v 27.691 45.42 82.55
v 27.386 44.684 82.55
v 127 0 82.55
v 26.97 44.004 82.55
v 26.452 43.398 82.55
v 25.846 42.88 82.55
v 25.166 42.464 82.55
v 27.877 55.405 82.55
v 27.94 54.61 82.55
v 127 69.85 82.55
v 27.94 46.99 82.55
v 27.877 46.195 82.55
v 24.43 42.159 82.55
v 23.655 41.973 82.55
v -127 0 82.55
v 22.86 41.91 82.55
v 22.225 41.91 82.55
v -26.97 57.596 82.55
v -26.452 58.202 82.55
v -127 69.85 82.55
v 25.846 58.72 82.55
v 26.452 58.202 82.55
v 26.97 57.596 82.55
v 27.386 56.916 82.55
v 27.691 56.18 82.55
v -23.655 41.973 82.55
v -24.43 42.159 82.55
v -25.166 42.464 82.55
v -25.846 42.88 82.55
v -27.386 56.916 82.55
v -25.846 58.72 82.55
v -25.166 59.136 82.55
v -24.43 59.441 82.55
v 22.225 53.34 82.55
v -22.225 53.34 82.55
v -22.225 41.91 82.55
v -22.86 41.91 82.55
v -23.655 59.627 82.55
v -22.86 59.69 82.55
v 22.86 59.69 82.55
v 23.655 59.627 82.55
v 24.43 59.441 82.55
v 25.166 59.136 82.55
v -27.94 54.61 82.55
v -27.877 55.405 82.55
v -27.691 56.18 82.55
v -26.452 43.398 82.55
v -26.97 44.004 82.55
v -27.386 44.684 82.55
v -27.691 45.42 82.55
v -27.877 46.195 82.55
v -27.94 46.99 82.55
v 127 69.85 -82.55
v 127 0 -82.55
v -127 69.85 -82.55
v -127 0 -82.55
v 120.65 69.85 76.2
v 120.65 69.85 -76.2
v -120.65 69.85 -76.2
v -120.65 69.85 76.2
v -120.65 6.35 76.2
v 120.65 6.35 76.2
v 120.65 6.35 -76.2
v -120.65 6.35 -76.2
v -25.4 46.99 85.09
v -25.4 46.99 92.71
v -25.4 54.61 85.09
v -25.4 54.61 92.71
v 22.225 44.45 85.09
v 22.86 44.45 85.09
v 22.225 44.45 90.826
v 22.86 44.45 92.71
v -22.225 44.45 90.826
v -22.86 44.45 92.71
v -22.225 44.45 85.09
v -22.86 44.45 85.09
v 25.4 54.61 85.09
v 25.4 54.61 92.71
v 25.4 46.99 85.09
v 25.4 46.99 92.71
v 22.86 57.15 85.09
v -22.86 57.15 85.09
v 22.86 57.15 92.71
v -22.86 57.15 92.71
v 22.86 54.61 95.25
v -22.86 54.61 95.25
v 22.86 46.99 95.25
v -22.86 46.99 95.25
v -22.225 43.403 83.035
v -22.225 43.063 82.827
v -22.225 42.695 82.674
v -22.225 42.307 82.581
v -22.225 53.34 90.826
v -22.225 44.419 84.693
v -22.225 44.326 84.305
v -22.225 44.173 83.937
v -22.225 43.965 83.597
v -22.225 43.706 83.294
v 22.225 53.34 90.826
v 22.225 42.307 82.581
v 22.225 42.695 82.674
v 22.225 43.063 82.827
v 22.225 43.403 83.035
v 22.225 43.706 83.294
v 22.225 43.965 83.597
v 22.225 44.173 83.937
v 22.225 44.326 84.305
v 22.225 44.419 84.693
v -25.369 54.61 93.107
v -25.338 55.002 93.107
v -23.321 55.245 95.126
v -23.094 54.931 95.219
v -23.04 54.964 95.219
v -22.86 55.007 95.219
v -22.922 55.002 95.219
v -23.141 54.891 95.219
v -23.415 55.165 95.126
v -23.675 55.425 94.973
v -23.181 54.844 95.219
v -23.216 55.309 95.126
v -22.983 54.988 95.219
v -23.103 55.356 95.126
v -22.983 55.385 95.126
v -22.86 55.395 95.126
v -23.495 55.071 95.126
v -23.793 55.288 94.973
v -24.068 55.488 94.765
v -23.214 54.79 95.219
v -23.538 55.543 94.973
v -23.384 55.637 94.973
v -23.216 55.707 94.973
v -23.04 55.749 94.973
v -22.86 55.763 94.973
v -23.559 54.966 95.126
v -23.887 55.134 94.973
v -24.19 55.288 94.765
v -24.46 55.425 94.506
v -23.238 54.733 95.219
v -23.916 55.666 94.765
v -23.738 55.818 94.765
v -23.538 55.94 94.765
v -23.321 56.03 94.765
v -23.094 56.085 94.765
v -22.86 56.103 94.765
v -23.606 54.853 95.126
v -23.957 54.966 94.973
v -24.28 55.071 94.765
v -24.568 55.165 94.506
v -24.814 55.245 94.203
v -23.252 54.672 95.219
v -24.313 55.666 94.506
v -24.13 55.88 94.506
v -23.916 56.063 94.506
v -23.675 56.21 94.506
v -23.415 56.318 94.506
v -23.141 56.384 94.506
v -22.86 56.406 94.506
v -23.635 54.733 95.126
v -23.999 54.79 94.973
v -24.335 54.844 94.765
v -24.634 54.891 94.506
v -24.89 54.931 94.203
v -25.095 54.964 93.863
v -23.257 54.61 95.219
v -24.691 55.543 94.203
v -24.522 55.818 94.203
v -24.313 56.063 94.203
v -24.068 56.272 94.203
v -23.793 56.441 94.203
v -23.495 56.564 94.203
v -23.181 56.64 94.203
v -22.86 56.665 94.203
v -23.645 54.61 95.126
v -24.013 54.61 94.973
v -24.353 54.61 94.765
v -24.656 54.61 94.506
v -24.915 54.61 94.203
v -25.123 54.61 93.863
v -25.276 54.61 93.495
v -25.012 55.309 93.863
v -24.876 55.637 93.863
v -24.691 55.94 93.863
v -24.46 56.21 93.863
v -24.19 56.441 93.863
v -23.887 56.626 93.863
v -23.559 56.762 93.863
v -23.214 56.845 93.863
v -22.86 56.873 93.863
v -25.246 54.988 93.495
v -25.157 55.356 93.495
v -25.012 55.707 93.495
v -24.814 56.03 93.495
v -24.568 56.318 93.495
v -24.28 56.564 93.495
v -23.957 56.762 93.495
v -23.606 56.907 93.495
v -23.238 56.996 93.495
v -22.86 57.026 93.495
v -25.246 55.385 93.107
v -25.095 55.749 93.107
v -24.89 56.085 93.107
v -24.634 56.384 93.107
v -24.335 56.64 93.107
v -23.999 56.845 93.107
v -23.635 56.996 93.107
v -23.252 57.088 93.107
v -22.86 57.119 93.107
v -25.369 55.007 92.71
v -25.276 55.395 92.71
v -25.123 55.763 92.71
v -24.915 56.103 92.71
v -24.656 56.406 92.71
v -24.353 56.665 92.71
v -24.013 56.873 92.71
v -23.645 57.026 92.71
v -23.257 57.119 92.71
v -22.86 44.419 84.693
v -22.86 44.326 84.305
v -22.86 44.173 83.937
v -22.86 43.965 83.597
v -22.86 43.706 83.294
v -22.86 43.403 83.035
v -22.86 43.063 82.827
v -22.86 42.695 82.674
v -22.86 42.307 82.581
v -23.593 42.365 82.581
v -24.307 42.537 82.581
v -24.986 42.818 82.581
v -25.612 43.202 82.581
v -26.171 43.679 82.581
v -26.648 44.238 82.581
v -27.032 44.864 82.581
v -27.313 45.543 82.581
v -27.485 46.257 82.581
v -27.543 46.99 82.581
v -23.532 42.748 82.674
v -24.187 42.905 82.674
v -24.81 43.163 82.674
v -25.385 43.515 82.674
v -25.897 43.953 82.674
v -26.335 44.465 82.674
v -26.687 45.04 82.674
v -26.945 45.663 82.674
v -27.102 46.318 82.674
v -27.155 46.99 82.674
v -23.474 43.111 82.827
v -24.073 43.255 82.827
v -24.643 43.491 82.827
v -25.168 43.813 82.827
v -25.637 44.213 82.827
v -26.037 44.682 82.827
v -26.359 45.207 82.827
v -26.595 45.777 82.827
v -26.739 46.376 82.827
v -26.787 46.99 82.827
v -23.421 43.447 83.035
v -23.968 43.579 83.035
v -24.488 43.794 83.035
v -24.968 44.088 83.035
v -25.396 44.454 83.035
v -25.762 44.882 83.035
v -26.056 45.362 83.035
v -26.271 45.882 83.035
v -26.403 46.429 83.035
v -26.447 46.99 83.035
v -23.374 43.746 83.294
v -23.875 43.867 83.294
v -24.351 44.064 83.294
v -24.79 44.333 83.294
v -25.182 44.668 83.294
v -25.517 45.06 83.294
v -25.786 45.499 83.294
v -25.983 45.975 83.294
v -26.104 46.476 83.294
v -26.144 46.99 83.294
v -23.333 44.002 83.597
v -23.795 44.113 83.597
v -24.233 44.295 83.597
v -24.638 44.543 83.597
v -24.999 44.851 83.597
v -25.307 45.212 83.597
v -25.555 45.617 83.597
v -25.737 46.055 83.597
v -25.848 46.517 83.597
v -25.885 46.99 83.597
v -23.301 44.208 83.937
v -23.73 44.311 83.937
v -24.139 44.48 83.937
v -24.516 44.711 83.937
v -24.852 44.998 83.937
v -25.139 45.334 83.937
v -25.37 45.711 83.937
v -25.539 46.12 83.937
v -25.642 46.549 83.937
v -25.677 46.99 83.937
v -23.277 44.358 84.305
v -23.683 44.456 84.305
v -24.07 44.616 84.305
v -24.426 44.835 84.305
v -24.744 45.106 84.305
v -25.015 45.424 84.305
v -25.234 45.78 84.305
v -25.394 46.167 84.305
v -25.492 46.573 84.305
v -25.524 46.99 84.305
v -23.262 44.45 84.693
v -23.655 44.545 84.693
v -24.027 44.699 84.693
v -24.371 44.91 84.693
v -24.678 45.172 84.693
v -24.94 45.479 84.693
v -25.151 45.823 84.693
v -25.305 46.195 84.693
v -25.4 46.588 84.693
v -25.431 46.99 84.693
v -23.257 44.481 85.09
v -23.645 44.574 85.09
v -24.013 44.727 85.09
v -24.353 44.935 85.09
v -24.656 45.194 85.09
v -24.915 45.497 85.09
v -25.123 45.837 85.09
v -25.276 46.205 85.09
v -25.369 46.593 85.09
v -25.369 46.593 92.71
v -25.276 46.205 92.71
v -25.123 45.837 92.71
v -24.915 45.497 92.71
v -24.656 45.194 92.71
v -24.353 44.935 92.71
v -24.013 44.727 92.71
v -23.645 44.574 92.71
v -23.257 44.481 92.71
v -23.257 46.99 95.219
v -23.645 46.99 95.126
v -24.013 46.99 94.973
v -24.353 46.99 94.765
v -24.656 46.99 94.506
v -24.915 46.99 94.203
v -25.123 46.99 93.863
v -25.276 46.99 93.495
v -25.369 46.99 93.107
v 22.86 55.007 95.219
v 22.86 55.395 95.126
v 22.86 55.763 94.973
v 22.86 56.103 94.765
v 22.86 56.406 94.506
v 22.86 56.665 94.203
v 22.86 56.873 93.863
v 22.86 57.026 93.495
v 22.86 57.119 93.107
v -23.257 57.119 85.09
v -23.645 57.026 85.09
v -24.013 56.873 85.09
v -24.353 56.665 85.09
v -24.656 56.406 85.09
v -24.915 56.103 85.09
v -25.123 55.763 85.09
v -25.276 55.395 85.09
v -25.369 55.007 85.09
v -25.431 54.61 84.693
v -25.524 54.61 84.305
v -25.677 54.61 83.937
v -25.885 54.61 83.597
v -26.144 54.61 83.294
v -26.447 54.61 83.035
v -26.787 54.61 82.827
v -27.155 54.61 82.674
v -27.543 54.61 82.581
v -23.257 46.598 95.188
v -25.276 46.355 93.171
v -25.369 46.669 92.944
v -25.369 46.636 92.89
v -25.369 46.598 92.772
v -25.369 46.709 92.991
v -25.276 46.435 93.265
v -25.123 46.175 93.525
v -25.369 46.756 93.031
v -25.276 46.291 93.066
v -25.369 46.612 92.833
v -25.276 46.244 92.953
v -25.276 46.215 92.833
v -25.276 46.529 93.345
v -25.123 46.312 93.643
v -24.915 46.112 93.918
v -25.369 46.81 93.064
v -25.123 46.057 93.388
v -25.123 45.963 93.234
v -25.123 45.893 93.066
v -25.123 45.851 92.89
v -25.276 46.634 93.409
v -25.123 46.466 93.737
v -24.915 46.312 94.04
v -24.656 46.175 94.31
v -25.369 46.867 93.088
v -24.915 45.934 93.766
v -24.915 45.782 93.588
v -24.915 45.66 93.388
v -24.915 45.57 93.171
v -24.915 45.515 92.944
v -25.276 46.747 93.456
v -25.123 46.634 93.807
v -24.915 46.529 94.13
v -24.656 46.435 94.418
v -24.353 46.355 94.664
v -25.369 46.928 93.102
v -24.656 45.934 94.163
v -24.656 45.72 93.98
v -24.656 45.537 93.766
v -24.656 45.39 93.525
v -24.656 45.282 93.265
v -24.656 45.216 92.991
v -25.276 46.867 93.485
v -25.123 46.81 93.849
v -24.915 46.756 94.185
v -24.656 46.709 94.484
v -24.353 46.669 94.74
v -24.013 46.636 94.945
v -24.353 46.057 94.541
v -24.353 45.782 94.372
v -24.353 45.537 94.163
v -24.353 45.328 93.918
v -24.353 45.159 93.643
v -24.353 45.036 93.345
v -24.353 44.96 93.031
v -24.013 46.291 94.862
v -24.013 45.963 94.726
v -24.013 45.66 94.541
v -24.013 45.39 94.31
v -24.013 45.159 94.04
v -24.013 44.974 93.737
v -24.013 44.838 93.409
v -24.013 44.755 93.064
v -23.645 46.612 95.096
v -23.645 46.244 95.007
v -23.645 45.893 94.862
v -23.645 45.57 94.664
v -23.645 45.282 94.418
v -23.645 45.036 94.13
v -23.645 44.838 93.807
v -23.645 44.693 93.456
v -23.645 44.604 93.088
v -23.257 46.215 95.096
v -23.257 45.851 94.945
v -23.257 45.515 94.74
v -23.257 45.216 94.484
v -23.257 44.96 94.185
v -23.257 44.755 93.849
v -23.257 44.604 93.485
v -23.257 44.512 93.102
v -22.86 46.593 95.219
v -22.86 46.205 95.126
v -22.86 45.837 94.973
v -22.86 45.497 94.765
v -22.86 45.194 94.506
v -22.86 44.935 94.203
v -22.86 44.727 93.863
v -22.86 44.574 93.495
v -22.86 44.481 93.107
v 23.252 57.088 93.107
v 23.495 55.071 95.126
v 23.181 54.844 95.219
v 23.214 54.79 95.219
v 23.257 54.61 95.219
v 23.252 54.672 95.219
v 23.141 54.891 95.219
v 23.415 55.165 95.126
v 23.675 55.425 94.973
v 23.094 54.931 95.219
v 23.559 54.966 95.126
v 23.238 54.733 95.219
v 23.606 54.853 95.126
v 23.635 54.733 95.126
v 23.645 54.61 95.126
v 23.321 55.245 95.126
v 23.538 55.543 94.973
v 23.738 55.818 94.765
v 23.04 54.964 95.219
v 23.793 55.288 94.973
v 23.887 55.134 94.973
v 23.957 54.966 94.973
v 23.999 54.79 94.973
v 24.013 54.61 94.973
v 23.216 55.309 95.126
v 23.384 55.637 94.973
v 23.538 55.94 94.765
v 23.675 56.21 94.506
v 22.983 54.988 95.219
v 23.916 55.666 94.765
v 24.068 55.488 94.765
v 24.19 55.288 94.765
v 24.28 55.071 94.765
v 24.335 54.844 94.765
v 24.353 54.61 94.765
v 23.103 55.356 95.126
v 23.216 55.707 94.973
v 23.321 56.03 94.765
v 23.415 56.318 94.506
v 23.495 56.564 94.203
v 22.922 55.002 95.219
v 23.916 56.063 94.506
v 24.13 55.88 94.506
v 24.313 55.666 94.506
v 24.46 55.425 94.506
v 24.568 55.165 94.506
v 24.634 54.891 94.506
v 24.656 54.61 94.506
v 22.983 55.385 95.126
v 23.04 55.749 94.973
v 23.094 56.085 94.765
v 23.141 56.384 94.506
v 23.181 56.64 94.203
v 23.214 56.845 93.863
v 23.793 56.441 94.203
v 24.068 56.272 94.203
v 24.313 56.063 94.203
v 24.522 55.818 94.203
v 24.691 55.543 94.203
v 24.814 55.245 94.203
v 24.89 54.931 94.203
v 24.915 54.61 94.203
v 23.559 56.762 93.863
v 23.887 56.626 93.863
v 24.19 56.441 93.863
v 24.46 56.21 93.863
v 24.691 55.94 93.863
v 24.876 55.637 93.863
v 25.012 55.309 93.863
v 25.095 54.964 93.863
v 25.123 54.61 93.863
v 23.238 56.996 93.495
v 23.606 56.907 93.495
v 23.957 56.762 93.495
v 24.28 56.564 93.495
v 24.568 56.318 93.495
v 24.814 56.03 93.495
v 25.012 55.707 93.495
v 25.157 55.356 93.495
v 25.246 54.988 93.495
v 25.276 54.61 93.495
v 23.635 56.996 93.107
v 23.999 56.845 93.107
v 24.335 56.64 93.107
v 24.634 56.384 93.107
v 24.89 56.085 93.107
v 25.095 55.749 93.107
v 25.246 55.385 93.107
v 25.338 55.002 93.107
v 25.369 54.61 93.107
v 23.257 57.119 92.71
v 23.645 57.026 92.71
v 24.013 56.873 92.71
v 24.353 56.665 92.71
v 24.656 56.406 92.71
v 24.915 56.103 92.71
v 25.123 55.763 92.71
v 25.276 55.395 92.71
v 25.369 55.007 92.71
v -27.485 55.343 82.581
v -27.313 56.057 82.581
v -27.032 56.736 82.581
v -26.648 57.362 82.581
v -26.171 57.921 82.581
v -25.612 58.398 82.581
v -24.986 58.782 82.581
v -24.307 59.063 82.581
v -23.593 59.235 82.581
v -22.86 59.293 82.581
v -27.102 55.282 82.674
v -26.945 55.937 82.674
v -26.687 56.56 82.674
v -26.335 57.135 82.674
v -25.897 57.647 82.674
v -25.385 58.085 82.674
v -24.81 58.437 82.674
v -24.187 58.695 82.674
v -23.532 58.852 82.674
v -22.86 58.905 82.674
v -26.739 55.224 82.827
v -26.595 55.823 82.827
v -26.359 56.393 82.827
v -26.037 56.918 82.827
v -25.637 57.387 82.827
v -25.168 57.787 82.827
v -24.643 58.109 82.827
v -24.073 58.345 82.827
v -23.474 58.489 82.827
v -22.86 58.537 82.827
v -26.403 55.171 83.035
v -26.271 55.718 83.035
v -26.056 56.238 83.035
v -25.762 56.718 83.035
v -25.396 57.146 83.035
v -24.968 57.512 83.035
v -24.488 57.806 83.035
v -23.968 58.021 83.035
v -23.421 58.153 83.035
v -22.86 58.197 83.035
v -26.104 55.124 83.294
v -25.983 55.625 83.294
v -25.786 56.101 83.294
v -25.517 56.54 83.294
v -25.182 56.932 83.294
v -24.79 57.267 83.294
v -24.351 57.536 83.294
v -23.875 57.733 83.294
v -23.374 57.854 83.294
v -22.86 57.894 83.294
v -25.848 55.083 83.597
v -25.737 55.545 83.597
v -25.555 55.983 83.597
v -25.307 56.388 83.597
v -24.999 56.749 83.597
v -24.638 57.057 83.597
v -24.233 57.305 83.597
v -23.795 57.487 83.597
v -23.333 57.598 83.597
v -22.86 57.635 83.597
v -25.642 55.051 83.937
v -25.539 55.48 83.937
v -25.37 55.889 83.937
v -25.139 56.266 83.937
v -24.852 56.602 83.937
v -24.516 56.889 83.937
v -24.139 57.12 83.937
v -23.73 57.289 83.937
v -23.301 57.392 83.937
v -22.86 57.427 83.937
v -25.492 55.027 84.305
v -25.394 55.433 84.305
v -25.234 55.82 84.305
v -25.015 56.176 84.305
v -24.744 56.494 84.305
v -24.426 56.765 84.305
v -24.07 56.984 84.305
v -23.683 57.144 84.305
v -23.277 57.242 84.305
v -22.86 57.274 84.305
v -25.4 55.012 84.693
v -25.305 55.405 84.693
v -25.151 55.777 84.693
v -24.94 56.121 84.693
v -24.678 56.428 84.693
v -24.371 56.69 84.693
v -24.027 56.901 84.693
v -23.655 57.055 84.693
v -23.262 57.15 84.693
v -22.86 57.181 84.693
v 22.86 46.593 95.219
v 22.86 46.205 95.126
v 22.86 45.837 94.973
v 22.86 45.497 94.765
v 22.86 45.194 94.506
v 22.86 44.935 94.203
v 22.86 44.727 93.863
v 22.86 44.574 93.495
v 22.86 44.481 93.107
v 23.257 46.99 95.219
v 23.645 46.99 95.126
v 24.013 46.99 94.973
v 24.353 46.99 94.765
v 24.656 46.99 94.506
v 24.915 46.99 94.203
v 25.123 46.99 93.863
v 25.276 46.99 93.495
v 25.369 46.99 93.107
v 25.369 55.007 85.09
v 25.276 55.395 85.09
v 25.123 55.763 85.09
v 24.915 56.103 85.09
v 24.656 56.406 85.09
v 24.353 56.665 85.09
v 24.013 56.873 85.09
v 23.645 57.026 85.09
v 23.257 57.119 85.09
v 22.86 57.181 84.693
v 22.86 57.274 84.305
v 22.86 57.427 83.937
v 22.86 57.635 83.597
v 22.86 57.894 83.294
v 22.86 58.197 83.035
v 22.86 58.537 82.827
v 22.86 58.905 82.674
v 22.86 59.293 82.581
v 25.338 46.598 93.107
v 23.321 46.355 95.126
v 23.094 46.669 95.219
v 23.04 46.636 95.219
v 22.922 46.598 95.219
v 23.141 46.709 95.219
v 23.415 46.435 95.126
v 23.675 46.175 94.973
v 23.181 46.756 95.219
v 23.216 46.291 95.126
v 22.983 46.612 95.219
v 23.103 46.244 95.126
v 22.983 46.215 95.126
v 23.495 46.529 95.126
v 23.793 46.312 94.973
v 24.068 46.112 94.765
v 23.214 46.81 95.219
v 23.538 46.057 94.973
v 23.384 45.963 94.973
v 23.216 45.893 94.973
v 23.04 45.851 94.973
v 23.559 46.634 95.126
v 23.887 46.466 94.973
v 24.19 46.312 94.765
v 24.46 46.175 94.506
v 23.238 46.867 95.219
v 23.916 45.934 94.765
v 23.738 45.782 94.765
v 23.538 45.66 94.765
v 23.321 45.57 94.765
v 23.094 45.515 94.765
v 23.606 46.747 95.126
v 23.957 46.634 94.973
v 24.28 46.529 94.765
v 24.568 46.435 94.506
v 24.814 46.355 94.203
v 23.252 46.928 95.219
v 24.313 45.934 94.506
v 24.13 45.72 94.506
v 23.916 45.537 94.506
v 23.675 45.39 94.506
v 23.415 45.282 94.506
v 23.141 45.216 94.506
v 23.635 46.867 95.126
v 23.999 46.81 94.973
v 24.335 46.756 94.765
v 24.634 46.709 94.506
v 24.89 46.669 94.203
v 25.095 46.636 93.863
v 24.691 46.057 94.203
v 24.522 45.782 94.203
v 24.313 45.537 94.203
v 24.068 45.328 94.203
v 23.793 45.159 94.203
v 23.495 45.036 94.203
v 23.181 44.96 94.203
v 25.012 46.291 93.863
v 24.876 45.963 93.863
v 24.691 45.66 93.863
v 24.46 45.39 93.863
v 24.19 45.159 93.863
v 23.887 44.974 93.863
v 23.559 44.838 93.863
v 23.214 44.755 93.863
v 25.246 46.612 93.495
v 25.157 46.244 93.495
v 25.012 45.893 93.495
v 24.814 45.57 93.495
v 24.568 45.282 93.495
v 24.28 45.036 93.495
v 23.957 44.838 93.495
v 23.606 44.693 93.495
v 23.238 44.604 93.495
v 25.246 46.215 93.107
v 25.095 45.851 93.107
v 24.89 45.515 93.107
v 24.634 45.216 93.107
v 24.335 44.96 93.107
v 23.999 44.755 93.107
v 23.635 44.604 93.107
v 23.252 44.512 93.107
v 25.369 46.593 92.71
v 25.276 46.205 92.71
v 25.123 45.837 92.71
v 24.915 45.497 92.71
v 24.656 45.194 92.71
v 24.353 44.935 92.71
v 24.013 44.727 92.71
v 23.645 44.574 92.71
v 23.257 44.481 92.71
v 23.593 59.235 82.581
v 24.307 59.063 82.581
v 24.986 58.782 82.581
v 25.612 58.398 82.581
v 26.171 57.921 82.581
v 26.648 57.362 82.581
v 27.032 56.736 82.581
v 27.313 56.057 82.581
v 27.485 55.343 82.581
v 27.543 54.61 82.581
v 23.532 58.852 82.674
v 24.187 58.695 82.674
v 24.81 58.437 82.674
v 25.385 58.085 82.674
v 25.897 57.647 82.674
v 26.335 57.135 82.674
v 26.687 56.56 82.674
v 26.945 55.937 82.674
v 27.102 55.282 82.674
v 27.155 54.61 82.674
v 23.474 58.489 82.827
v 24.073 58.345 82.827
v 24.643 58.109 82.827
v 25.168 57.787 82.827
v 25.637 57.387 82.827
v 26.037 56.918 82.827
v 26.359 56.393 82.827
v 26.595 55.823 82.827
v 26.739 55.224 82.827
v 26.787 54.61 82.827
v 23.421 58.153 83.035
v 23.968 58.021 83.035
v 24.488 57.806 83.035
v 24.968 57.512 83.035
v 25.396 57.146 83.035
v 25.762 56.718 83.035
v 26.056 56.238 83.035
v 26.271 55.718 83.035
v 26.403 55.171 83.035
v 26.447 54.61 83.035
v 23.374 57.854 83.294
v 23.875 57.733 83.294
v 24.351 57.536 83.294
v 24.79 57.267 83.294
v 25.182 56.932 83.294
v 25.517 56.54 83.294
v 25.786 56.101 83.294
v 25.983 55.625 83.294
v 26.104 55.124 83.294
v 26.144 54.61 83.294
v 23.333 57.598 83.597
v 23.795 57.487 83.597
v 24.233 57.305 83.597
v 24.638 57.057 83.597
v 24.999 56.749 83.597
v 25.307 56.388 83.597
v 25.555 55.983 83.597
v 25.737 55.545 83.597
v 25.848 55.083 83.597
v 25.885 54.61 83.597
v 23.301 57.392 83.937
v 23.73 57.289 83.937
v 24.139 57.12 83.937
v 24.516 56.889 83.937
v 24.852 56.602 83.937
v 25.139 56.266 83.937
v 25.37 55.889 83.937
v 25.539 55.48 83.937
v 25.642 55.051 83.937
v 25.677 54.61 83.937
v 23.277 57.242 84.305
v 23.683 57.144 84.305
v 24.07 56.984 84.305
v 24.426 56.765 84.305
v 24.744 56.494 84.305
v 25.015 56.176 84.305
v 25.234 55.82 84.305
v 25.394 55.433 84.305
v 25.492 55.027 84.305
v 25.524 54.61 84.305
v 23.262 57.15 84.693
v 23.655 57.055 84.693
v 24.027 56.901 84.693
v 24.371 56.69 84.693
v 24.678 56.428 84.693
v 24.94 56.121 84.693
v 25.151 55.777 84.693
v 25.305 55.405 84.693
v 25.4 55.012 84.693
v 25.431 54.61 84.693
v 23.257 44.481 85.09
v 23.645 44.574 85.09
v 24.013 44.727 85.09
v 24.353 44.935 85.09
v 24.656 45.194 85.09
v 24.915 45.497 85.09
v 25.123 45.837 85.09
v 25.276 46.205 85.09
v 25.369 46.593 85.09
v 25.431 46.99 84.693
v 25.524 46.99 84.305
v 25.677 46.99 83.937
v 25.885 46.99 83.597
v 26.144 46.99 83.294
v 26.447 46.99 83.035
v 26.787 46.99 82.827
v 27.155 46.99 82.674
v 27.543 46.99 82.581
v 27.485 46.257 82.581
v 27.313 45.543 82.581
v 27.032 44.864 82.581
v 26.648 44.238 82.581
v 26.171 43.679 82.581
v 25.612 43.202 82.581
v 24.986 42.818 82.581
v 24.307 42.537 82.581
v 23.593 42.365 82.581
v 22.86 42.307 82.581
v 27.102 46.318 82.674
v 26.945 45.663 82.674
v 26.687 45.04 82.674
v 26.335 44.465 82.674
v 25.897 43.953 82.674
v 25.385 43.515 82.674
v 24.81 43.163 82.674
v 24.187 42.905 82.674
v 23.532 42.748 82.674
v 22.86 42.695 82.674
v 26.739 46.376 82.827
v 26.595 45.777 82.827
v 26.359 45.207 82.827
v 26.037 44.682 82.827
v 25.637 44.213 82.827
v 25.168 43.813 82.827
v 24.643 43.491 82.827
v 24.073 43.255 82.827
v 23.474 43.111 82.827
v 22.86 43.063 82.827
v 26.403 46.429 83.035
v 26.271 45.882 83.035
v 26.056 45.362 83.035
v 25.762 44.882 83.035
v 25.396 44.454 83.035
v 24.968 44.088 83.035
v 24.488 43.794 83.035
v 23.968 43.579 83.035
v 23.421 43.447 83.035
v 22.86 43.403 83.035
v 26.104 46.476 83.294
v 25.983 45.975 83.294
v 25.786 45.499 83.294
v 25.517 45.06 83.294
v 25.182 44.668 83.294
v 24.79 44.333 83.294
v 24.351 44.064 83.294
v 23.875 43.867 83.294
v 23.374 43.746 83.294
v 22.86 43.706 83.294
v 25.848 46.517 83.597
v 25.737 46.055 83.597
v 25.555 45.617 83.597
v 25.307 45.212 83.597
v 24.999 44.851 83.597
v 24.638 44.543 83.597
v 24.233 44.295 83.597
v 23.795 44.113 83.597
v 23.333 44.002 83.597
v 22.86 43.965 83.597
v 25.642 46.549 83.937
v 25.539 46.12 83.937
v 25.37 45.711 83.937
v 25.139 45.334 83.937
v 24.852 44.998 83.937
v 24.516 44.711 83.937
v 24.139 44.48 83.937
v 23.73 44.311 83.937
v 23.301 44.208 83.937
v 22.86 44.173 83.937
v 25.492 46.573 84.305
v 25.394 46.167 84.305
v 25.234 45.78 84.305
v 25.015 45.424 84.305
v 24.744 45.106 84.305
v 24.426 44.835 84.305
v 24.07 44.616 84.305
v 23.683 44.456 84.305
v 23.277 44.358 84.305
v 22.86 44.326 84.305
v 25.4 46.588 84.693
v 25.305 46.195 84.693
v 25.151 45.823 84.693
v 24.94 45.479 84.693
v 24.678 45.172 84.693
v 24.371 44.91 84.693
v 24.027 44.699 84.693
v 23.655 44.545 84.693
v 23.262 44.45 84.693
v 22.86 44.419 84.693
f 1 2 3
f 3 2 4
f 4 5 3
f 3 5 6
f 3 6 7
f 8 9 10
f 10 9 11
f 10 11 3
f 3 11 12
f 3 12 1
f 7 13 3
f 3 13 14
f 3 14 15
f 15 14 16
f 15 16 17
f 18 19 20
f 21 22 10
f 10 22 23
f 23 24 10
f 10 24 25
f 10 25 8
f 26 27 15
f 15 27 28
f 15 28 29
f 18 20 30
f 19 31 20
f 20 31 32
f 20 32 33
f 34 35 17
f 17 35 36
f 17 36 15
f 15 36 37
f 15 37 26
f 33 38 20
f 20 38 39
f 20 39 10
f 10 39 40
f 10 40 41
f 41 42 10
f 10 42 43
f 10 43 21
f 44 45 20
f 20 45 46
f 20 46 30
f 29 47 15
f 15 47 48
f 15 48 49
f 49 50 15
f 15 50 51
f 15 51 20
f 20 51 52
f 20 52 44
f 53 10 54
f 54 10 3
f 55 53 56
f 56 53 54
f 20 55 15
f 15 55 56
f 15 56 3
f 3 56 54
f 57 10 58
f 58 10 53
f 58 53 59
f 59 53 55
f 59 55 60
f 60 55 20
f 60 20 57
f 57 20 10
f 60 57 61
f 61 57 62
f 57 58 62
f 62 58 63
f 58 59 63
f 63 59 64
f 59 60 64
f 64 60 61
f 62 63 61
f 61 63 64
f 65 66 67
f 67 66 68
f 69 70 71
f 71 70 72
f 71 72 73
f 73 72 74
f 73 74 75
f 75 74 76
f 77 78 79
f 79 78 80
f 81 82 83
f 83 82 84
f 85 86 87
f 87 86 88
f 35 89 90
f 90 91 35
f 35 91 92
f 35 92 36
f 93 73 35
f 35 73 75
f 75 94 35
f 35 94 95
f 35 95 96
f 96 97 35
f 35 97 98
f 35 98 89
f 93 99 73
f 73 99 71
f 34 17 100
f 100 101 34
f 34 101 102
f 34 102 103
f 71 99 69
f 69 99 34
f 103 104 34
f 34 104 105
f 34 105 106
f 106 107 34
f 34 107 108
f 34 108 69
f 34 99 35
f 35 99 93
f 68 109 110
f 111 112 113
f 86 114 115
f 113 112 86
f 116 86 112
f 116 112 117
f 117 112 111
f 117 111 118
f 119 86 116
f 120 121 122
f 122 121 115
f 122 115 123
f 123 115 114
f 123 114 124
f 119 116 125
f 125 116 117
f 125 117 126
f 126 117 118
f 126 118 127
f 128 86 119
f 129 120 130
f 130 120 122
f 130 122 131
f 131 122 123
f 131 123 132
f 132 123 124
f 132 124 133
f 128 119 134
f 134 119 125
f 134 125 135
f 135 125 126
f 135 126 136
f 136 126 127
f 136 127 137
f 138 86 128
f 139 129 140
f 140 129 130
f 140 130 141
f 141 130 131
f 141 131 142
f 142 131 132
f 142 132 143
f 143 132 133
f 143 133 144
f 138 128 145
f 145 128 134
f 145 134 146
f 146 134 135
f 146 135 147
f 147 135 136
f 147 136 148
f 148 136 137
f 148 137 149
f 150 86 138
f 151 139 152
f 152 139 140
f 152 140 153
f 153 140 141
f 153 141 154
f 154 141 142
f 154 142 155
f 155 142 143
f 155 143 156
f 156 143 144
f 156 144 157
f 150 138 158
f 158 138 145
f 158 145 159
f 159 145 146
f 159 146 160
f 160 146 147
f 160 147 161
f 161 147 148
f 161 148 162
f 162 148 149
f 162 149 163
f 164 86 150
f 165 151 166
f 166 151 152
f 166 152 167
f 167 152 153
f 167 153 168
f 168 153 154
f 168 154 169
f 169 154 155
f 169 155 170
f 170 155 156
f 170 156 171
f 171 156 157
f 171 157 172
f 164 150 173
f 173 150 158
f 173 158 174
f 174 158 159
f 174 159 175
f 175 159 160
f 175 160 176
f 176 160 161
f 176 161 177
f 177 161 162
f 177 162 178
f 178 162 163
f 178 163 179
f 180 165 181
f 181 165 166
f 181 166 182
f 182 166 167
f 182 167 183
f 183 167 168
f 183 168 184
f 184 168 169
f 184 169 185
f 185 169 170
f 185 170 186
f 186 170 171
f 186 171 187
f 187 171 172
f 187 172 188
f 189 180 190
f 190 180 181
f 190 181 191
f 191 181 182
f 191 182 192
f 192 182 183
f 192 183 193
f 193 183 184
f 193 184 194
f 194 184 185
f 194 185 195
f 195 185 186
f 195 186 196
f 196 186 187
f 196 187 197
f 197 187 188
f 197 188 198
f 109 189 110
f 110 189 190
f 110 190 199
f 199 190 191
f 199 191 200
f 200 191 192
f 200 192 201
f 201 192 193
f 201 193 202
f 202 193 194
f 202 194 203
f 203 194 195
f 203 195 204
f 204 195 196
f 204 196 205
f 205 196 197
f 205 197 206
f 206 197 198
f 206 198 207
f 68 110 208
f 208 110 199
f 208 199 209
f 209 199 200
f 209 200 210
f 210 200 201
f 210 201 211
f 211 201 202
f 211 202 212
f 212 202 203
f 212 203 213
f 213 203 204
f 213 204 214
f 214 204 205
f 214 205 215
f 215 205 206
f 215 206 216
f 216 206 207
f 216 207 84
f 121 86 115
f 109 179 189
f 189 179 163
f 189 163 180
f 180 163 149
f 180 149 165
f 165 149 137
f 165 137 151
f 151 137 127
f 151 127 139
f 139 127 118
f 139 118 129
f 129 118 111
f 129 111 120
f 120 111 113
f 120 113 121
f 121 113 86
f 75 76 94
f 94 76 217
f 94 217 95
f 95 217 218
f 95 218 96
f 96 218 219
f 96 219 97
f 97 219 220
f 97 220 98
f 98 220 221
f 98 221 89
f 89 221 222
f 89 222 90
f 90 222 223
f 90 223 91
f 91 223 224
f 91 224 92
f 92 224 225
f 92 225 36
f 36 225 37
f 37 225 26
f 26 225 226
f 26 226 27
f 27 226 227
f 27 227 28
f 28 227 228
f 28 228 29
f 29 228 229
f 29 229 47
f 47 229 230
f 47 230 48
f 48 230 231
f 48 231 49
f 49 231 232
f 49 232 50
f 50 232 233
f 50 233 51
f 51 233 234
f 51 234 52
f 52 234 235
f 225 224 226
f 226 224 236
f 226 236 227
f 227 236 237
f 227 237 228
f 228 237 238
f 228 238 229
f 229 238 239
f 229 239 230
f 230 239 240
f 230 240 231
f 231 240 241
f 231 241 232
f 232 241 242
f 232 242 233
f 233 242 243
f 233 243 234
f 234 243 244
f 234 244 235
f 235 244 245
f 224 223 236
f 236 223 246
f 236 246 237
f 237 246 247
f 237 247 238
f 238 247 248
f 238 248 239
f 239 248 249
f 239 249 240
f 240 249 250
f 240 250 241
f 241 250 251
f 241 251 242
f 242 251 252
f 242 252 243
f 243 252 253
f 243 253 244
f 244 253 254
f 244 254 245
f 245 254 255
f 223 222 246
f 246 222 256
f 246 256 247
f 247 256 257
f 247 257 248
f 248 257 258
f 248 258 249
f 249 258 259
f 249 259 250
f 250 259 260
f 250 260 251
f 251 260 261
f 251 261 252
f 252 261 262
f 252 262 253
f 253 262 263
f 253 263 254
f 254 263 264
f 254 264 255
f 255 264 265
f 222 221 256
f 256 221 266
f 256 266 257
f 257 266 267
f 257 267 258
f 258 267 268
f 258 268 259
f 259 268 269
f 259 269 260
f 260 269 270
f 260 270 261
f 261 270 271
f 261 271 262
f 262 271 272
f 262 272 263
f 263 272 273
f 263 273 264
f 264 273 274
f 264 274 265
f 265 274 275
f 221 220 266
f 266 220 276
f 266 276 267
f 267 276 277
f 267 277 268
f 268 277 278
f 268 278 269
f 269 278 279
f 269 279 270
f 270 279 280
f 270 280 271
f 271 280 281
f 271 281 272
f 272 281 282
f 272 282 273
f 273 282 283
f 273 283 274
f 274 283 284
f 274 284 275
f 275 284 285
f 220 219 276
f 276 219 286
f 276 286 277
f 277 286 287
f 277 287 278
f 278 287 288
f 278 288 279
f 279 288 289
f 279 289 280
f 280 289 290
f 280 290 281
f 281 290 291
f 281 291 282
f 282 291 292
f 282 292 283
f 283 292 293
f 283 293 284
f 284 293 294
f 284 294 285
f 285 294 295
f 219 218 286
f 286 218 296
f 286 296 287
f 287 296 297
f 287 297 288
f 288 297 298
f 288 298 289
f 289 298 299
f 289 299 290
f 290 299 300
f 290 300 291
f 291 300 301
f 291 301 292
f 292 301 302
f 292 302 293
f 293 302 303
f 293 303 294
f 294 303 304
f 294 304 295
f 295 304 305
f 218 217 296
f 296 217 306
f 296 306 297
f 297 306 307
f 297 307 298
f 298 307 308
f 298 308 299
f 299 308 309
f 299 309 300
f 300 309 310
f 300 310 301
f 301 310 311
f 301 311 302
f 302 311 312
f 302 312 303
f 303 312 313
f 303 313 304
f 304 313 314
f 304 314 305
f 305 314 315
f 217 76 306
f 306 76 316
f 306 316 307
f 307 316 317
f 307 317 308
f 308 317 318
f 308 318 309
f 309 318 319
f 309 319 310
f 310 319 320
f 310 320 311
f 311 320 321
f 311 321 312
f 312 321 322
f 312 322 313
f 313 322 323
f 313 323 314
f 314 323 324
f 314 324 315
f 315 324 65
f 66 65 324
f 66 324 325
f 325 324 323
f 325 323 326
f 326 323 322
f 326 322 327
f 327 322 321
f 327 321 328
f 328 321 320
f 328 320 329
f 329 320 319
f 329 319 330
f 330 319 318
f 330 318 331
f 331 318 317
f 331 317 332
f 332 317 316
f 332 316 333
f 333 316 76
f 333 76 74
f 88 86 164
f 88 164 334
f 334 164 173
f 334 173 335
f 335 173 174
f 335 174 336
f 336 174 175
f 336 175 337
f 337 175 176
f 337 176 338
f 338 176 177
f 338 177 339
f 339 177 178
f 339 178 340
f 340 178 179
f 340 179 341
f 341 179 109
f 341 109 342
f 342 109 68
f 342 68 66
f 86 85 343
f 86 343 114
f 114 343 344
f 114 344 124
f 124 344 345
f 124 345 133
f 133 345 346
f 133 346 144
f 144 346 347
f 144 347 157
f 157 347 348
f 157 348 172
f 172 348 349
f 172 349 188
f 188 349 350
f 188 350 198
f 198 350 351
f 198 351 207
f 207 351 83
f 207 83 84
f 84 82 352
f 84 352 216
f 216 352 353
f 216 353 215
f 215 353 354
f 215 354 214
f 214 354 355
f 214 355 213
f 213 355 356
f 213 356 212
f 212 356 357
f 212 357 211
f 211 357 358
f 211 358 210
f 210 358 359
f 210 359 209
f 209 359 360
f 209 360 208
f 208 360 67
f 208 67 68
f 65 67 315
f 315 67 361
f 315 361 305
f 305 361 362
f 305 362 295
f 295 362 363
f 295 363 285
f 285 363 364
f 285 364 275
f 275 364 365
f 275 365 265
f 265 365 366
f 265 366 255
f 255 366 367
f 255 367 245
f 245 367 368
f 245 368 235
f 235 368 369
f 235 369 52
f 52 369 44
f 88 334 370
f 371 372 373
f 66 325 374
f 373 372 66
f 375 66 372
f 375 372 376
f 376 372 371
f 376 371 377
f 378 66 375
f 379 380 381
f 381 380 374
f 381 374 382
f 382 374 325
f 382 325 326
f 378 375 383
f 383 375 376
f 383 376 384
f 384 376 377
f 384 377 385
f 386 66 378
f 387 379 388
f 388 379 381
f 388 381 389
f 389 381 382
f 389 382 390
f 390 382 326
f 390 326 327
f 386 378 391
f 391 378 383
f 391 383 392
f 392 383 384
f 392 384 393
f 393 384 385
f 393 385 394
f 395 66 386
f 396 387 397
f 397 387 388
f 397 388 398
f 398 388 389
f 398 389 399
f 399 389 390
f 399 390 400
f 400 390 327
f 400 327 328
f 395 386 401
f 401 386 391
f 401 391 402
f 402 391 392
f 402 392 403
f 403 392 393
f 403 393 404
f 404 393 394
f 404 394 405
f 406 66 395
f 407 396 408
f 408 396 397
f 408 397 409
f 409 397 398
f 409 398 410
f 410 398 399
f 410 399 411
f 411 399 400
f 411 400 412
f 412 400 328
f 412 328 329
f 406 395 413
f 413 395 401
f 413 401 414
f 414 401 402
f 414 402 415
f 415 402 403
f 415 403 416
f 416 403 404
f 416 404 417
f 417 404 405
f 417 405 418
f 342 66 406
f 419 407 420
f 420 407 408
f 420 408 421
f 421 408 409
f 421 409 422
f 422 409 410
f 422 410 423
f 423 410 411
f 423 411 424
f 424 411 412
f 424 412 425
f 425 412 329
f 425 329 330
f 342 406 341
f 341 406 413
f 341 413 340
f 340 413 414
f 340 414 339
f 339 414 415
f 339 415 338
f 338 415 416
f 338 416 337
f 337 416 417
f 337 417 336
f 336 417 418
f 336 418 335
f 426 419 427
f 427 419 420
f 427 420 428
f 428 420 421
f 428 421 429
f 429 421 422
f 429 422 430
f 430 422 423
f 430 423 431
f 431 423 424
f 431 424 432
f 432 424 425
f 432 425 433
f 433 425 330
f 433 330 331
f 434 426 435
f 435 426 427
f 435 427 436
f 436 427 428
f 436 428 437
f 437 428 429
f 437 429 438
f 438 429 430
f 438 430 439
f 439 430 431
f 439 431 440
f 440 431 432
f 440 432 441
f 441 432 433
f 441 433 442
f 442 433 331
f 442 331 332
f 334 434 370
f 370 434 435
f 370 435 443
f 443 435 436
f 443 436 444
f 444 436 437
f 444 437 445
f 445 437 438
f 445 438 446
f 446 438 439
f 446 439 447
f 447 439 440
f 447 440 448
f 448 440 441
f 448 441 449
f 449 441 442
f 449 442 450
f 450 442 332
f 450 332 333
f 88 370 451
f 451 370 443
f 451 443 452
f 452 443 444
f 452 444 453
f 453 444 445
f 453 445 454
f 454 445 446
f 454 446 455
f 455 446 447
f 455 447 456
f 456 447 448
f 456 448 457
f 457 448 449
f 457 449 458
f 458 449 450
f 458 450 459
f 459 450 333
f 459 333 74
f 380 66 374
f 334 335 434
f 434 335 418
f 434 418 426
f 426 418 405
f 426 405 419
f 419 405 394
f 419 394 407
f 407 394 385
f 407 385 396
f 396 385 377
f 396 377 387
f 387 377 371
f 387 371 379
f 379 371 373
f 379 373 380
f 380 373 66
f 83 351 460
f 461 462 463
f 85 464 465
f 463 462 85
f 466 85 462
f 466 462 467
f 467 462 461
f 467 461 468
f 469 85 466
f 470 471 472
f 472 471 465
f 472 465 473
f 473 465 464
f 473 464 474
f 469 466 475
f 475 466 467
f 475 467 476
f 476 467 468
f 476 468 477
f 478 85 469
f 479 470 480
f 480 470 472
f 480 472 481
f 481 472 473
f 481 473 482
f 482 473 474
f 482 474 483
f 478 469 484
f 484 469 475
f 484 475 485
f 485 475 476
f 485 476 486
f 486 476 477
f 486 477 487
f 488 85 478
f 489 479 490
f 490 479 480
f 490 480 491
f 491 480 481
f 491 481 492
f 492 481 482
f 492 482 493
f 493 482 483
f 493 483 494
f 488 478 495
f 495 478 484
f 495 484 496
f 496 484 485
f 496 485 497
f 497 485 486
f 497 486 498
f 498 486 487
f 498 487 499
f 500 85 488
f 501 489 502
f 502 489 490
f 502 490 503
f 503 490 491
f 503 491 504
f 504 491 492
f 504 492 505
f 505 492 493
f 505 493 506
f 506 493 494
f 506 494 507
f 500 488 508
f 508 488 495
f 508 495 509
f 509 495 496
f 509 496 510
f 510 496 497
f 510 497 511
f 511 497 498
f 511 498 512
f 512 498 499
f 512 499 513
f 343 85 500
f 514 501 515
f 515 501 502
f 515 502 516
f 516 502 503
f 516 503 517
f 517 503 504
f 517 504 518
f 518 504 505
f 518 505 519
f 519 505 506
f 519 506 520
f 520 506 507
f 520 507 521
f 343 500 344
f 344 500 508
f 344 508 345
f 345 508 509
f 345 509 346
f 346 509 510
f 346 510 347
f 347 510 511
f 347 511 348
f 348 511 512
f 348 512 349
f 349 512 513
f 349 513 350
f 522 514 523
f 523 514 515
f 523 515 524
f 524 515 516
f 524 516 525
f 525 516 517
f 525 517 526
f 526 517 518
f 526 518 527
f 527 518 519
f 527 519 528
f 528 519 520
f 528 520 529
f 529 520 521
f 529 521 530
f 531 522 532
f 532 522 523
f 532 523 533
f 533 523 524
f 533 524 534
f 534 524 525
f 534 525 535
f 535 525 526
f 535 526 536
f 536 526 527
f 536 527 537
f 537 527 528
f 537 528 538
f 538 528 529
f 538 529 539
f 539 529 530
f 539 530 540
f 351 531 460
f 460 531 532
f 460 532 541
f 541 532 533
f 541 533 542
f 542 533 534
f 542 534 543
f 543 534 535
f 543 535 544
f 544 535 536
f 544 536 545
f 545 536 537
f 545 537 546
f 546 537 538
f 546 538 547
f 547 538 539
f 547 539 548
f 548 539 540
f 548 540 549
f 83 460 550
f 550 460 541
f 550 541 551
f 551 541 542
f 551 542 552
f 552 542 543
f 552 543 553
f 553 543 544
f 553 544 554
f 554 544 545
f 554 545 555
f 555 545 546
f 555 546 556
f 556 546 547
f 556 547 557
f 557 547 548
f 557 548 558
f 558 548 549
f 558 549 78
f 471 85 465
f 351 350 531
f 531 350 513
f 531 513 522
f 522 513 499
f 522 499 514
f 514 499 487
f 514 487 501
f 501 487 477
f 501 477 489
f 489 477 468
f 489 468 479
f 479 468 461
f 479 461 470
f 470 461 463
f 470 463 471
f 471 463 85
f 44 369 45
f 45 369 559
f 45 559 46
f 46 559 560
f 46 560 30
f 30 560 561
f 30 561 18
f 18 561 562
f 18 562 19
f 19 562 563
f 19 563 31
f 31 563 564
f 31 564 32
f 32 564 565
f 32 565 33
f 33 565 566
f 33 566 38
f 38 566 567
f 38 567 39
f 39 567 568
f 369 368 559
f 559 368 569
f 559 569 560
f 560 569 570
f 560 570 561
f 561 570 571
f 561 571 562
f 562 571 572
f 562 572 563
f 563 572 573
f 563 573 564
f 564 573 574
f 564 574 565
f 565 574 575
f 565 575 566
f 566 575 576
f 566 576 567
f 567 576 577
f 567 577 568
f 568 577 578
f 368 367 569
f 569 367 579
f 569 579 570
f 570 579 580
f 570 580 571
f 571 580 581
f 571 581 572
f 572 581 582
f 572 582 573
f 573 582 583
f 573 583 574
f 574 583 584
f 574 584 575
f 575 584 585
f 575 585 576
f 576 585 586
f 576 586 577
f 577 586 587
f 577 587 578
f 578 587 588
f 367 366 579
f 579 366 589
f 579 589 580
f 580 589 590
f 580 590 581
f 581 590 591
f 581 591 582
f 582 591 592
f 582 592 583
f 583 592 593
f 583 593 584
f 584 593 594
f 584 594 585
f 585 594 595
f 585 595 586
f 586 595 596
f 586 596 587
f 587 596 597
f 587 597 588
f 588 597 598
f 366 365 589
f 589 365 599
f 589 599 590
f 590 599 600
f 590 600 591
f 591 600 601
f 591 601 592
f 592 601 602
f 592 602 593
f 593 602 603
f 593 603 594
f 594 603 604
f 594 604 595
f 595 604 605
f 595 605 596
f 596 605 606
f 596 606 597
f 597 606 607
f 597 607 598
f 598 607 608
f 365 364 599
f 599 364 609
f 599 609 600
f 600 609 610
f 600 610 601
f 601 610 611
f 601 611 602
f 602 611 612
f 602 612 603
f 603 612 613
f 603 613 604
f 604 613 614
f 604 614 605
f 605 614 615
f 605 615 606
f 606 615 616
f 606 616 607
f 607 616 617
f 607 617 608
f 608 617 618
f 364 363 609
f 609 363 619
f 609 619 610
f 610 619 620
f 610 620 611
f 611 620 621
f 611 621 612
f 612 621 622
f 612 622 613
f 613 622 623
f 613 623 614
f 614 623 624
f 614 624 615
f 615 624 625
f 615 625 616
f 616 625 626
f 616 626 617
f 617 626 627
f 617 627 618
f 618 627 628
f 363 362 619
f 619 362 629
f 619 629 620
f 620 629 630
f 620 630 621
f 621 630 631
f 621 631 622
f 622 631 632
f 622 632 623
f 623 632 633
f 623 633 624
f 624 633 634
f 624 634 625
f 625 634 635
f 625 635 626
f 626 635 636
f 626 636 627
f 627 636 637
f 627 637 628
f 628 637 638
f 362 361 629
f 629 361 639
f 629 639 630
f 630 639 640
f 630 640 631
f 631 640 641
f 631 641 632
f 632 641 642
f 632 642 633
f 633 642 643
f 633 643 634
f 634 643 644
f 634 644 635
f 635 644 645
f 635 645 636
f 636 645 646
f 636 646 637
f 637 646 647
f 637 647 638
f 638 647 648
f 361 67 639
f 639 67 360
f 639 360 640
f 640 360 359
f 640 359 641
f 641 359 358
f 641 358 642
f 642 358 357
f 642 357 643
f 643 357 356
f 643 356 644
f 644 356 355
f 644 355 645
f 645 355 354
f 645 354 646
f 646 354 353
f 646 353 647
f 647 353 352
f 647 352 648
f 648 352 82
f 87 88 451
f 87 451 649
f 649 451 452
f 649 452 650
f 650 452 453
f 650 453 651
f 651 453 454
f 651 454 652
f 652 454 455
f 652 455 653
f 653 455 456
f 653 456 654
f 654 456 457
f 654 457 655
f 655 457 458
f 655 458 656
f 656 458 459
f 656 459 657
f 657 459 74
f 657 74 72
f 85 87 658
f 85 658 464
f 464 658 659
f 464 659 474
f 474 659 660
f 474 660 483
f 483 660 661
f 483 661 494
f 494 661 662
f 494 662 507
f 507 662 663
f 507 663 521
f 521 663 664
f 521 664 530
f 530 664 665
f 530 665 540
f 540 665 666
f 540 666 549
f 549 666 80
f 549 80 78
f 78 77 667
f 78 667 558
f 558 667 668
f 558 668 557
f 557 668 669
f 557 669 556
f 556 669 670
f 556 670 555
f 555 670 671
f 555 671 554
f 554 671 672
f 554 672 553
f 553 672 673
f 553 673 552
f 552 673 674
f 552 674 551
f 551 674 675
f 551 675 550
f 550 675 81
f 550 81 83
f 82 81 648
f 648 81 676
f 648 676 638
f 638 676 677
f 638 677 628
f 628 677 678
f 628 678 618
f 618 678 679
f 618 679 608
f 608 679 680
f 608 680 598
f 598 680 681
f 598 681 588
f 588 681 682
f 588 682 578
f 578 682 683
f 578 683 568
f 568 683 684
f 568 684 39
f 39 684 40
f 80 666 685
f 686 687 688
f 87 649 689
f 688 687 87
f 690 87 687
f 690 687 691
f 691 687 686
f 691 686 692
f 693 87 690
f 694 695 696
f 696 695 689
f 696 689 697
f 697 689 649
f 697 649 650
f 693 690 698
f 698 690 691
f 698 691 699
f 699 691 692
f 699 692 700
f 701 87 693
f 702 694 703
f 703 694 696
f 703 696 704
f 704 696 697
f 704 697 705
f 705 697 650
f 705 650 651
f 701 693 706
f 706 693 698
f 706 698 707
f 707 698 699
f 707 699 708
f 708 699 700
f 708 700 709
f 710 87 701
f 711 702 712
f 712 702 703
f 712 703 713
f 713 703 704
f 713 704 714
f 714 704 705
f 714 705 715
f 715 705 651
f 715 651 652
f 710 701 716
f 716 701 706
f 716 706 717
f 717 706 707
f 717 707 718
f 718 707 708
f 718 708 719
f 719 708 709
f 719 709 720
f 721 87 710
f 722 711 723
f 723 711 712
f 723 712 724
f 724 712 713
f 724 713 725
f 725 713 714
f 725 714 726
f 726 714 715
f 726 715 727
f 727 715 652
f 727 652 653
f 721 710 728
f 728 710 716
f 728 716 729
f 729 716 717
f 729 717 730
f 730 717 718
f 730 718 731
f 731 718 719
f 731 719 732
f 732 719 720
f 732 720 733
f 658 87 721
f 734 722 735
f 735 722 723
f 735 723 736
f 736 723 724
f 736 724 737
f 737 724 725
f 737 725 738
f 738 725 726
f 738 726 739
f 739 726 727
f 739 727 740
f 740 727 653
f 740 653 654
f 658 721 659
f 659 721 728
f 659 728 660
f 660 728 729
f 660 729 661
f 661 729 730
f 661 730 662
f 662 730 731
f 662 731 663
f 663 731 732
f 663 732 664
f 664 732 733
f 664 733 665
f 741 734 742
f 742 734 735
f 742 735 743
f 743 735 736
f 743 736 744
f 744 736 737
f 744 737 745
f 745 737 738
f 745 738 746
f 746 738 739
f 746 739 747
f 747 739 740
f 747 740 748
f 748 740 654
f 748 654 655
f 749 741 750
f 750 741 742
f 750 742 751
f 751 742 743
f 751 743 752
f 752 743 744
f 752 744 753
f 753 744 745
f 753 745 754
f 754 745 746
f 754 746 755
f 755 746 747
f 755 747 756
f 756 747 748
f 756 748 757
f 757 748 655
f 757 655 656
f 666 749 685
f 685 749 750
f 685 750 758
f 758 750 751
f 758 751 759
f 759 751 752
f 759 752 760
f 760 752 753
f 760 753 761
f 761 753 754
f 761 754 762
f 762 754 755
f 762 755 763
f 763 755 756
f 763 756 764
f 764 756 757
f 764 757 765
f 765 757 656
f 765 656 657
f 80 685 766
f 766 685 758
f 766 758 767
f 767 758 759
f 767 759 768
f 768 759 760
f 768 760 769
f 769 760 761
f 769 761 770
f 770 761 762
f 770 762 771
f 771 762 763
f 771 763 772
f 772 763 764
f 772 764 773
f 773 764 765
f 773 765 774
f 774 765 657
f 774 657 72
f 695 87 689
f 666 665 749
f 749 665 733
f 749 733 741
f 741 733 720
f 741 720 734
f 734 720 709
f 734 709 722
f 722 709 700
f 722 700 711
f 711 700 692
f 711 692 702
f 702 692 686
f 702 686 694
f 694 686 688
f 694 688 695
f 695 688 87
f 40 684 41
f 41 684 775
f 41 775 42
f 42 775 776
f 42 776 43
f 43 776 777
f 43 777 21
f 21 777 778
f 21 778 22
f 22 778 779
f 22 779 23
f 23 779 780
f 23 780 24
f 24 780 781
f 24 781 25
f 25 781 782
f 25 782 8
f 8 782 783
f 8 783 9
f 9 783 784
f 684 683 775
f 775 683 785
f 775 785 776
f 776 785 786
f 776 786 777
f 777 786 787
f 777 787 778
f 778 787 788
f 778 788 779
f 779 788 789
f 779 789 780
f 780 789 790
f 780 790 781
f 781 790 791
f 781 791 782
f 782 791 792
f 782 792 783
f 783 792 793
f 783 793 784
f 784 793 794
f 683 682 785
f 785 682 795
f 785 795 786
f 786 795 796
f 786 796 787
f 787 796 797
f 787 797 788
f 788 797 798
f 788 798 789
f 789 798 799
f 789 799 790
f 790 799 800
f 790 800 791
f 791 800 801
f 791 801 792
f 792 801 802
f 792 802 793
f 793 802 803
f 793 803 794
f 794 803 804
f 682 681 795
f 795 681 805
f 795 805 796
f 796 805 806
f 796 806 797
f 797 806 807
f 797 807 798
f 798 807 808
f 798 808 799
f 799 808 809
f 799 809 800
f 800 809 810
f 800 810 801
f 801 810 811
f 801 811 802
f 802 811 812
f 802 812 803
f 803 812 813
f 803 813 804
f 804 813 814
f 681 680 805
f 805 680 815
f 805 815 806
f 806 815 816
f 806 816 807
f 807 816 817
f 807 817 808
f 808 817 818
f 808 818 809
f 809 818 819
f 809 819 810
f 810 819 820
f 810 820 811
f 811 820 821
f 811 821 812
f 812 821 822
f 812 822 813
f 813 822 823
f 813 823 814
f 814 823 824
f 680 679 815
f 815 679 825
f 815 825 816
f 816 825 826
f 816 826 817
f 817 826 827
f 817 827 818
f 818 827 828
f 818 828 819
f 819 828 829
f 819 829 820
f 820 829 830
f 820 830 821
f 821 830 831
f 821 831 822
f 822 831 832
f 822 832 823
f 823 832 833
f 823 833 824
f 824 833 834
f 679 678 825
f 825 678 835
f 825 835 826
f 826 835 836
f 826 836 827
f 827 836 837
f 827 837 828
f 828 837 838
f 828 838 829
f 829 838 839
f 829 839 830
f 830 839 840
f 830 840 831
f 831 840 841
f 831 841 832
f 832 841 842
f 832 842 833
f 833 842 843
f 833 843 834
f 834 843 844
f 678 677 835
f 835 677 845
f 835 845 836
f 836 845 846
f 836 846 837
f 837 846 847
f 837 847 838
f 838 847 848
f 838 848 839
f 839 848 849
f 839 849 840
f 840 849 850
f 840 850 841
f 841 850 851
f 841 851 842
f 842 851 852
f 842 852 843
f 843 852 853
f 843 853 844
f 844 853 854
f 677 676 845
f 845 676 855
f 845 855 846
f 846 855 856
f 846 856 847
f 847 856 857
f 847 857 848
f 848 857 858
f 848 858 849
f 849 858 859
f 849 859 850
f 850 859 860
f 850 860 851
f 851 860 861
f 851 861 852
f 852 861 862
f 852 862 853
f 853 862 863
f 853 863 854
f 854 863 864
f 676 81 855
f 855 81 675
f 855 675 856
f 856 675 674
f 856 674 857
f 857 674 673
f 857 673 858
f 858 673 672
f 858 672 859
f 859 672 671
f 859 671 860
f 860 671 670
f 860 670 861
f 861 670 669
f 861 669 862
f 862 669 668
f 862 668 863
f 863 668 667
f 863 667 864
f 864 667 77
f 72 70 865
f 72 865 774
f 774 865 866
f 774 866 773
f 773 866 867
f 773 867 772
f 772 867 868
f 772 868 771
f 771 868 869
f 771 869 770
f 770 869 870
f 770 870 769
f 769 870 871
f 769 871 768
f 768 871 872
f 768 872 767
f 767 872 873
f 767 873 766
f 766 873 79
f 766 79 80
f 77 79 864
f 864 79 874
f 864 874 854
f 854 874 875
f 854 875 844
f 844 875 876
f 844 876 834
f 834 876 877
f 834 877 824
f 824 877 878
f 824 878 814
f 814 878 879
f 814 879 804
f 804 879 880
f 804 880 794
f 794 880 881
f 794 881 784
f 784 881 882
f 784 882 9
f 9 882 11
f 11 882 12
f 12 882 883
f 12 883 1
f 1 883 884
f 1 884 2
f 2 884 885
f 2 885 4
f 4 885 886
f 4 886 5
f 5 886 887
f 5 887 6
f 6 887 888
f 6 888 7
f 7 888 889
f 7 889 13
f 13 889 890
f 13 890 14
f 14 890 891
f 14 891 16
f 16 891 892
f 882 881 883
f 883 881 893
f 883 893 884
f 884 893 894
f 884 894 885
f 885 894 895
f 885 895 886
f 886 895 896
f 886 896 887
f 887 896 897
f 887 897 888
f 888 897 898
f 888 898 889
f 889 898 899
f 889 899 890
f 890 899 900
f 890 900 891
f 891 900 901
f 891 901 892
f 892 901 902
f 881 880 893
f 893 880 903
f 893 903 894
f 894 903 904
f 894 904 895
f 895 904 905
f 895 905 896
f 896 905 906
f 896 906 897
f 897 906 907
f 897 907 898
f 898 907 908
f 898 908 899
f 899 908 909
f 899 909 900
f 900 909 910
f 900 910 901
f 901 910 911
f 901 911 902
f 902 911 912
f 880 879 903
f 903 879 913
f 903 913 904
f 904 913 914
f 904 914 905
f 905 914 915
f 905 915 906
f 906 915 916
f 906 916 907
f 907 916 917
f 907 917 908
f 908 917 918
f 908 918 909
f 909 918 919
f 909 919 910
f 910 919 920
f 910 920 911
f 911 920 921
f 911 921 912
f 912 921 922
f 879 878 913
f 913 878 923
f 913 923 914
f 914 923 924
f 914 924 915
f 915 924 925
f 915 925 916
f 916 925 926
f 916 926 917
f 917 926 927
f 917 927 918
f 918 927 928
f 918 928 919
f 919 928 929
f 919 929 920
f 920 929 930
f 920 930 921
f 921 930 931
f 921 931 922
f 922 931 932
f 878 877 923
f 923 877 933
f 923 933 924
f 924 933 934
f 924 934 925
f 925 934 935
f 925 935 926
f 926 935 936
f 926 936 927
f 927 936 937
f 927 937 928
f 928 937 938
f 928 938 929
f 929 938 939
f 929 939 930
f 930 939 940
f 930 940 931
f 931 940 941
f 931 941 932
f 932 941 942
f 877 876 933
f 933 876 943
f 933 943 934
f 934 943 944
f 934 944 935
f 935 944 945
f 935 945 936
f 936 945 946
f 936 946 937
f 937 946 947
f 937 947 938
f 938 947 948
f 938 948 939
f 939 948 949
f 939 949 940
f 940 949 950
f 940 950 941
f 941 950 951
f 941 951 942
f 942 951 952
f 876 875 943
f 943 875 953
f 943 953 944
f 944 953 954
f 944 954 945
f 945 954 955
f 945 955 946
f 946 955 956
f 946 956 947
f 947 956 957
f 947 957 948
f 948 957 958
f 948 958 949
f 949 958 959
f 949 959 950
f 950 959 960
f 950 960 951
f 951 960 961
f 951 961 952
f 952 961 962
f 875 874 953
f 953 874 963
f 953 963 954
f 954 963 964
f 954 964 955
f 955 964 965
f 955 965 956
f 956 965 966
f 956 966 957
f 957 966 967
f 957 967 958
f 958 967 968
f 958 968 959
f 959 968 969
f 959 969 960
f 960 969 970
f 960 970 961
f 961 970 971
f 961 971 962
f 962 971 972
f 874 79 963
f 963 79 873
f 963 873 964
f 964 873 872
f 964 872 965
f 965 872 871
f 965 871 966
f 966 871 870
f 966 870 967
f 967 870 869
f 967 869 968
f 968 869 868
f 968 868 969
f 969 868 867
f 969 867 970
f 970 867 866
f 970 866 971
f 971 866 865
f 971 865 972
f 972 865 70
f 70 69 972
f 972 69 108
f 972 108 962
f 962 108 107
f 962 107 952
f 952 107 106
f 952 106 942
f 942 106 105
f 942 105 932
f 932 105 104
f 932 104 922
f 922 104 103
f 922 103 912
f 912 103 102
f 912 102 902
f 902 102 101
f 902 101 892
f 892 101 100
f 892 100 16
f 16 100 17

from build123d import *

# Parameters (mm, degrees)
SKETCH2_W           = 254
SKETCH2_H           = 165.1
BOSS_EXTRUDE1_DEPTH = 6.35
SKETCH3_W           = 254
SKETCH3_H           = 165.1
SKETCH3_W_2         = 241.3
SKETCH3_H_2         = 152.4
BOSS_EXTRUDE2_DEPTH = 63.5
SKETCH4_W           = 50.8
SKETCH4_H           = 12.7
BOSS_EXTRUDE3_DEPTH = 12.7
SKETCH6_W           = 44.45
SKETCH6_H           = 8.276182153
CUT_EXTRUDE1_DEPTH  = 8.89
FILLET1_R           = 2.54


with BuildPart() as part:
    # Sketch2 → Boss-Extrude1 (new body)
    with BuildSketch(Plane(origin=(0, 0, 0), x_dir=(1, 0, 0), z_dir=(0, 1, 0))):
        Rectangle(SKETCH2_W, SKETCH2_H)
    extrude(amount=BOSS_EXTRUDE1_DEPTH)

    # Sketch3 → Boss-Extrude2 (add)
    with BuildSketch(Plane(origin=(0, 6.35, 0), x_dir=(1, 0, 0), z_dir=(0, 1, 0))):
        Rectangle(SKETCH3_W, SKETCH3_H)
        Rectangle(SKETCH3_W_2, SKETCH3_H_2, mode=Mode.SUBTRACT)
    extrude(amount=BOSS_EXTRUDE2_DEPTH)

    # Sketch4 → Boss-Extrude3 (add)
    with BuildSketch(Plane.XY.offset(82.55)):
        with Locations((0, 50.8)):
            Rectangle(SKETCH4_W, SKETCH4_H)
    extrude(amount=BOSS_EXTRUDE3_DEPTH)

    # Sketch6 → Cut-Extrude1 (cut)
    with BuildSketch(Plane(origin=(0, 44.45, 0), x_dir=(-1, 0, 0), z_dir=(0, -1, 0))):
        with Locations((0, -86.688091077)):
            Rectangle(SKETCH6_W, SKETCH6_H)
    extrude(amount=-CUT_EXTRUDE1_DEPTH, mode=Mode.SUBTRACT)

    # Fillet1
    fillet1_edges = [part.edges().sort_by_distance(p)[0] for p in [
        (-25.4, 50.8, 82.55),
        (-25.4, 57.15, 88.9),
        (-23.8125, 44.45, 82.55),
        (-25.4, 44.45, 88.9),
        (25.4, 50.8, 82.55),
        (25.4, 44.45, 88.9),
        (0, 57.15, 82.55),
        (25.4, 57.15, 88.9),
        (-25.4, 50.8, 95.25),
        (0, 44.45, 95.25),
        (25.4, 50.8, 95.25),
        (0, 57.15, 95.25),
        (23.8125, 44.45, 82.55),
    ]]
    fillet(fillet1_edges, radius=FILLET1_R)


solid = part.part
